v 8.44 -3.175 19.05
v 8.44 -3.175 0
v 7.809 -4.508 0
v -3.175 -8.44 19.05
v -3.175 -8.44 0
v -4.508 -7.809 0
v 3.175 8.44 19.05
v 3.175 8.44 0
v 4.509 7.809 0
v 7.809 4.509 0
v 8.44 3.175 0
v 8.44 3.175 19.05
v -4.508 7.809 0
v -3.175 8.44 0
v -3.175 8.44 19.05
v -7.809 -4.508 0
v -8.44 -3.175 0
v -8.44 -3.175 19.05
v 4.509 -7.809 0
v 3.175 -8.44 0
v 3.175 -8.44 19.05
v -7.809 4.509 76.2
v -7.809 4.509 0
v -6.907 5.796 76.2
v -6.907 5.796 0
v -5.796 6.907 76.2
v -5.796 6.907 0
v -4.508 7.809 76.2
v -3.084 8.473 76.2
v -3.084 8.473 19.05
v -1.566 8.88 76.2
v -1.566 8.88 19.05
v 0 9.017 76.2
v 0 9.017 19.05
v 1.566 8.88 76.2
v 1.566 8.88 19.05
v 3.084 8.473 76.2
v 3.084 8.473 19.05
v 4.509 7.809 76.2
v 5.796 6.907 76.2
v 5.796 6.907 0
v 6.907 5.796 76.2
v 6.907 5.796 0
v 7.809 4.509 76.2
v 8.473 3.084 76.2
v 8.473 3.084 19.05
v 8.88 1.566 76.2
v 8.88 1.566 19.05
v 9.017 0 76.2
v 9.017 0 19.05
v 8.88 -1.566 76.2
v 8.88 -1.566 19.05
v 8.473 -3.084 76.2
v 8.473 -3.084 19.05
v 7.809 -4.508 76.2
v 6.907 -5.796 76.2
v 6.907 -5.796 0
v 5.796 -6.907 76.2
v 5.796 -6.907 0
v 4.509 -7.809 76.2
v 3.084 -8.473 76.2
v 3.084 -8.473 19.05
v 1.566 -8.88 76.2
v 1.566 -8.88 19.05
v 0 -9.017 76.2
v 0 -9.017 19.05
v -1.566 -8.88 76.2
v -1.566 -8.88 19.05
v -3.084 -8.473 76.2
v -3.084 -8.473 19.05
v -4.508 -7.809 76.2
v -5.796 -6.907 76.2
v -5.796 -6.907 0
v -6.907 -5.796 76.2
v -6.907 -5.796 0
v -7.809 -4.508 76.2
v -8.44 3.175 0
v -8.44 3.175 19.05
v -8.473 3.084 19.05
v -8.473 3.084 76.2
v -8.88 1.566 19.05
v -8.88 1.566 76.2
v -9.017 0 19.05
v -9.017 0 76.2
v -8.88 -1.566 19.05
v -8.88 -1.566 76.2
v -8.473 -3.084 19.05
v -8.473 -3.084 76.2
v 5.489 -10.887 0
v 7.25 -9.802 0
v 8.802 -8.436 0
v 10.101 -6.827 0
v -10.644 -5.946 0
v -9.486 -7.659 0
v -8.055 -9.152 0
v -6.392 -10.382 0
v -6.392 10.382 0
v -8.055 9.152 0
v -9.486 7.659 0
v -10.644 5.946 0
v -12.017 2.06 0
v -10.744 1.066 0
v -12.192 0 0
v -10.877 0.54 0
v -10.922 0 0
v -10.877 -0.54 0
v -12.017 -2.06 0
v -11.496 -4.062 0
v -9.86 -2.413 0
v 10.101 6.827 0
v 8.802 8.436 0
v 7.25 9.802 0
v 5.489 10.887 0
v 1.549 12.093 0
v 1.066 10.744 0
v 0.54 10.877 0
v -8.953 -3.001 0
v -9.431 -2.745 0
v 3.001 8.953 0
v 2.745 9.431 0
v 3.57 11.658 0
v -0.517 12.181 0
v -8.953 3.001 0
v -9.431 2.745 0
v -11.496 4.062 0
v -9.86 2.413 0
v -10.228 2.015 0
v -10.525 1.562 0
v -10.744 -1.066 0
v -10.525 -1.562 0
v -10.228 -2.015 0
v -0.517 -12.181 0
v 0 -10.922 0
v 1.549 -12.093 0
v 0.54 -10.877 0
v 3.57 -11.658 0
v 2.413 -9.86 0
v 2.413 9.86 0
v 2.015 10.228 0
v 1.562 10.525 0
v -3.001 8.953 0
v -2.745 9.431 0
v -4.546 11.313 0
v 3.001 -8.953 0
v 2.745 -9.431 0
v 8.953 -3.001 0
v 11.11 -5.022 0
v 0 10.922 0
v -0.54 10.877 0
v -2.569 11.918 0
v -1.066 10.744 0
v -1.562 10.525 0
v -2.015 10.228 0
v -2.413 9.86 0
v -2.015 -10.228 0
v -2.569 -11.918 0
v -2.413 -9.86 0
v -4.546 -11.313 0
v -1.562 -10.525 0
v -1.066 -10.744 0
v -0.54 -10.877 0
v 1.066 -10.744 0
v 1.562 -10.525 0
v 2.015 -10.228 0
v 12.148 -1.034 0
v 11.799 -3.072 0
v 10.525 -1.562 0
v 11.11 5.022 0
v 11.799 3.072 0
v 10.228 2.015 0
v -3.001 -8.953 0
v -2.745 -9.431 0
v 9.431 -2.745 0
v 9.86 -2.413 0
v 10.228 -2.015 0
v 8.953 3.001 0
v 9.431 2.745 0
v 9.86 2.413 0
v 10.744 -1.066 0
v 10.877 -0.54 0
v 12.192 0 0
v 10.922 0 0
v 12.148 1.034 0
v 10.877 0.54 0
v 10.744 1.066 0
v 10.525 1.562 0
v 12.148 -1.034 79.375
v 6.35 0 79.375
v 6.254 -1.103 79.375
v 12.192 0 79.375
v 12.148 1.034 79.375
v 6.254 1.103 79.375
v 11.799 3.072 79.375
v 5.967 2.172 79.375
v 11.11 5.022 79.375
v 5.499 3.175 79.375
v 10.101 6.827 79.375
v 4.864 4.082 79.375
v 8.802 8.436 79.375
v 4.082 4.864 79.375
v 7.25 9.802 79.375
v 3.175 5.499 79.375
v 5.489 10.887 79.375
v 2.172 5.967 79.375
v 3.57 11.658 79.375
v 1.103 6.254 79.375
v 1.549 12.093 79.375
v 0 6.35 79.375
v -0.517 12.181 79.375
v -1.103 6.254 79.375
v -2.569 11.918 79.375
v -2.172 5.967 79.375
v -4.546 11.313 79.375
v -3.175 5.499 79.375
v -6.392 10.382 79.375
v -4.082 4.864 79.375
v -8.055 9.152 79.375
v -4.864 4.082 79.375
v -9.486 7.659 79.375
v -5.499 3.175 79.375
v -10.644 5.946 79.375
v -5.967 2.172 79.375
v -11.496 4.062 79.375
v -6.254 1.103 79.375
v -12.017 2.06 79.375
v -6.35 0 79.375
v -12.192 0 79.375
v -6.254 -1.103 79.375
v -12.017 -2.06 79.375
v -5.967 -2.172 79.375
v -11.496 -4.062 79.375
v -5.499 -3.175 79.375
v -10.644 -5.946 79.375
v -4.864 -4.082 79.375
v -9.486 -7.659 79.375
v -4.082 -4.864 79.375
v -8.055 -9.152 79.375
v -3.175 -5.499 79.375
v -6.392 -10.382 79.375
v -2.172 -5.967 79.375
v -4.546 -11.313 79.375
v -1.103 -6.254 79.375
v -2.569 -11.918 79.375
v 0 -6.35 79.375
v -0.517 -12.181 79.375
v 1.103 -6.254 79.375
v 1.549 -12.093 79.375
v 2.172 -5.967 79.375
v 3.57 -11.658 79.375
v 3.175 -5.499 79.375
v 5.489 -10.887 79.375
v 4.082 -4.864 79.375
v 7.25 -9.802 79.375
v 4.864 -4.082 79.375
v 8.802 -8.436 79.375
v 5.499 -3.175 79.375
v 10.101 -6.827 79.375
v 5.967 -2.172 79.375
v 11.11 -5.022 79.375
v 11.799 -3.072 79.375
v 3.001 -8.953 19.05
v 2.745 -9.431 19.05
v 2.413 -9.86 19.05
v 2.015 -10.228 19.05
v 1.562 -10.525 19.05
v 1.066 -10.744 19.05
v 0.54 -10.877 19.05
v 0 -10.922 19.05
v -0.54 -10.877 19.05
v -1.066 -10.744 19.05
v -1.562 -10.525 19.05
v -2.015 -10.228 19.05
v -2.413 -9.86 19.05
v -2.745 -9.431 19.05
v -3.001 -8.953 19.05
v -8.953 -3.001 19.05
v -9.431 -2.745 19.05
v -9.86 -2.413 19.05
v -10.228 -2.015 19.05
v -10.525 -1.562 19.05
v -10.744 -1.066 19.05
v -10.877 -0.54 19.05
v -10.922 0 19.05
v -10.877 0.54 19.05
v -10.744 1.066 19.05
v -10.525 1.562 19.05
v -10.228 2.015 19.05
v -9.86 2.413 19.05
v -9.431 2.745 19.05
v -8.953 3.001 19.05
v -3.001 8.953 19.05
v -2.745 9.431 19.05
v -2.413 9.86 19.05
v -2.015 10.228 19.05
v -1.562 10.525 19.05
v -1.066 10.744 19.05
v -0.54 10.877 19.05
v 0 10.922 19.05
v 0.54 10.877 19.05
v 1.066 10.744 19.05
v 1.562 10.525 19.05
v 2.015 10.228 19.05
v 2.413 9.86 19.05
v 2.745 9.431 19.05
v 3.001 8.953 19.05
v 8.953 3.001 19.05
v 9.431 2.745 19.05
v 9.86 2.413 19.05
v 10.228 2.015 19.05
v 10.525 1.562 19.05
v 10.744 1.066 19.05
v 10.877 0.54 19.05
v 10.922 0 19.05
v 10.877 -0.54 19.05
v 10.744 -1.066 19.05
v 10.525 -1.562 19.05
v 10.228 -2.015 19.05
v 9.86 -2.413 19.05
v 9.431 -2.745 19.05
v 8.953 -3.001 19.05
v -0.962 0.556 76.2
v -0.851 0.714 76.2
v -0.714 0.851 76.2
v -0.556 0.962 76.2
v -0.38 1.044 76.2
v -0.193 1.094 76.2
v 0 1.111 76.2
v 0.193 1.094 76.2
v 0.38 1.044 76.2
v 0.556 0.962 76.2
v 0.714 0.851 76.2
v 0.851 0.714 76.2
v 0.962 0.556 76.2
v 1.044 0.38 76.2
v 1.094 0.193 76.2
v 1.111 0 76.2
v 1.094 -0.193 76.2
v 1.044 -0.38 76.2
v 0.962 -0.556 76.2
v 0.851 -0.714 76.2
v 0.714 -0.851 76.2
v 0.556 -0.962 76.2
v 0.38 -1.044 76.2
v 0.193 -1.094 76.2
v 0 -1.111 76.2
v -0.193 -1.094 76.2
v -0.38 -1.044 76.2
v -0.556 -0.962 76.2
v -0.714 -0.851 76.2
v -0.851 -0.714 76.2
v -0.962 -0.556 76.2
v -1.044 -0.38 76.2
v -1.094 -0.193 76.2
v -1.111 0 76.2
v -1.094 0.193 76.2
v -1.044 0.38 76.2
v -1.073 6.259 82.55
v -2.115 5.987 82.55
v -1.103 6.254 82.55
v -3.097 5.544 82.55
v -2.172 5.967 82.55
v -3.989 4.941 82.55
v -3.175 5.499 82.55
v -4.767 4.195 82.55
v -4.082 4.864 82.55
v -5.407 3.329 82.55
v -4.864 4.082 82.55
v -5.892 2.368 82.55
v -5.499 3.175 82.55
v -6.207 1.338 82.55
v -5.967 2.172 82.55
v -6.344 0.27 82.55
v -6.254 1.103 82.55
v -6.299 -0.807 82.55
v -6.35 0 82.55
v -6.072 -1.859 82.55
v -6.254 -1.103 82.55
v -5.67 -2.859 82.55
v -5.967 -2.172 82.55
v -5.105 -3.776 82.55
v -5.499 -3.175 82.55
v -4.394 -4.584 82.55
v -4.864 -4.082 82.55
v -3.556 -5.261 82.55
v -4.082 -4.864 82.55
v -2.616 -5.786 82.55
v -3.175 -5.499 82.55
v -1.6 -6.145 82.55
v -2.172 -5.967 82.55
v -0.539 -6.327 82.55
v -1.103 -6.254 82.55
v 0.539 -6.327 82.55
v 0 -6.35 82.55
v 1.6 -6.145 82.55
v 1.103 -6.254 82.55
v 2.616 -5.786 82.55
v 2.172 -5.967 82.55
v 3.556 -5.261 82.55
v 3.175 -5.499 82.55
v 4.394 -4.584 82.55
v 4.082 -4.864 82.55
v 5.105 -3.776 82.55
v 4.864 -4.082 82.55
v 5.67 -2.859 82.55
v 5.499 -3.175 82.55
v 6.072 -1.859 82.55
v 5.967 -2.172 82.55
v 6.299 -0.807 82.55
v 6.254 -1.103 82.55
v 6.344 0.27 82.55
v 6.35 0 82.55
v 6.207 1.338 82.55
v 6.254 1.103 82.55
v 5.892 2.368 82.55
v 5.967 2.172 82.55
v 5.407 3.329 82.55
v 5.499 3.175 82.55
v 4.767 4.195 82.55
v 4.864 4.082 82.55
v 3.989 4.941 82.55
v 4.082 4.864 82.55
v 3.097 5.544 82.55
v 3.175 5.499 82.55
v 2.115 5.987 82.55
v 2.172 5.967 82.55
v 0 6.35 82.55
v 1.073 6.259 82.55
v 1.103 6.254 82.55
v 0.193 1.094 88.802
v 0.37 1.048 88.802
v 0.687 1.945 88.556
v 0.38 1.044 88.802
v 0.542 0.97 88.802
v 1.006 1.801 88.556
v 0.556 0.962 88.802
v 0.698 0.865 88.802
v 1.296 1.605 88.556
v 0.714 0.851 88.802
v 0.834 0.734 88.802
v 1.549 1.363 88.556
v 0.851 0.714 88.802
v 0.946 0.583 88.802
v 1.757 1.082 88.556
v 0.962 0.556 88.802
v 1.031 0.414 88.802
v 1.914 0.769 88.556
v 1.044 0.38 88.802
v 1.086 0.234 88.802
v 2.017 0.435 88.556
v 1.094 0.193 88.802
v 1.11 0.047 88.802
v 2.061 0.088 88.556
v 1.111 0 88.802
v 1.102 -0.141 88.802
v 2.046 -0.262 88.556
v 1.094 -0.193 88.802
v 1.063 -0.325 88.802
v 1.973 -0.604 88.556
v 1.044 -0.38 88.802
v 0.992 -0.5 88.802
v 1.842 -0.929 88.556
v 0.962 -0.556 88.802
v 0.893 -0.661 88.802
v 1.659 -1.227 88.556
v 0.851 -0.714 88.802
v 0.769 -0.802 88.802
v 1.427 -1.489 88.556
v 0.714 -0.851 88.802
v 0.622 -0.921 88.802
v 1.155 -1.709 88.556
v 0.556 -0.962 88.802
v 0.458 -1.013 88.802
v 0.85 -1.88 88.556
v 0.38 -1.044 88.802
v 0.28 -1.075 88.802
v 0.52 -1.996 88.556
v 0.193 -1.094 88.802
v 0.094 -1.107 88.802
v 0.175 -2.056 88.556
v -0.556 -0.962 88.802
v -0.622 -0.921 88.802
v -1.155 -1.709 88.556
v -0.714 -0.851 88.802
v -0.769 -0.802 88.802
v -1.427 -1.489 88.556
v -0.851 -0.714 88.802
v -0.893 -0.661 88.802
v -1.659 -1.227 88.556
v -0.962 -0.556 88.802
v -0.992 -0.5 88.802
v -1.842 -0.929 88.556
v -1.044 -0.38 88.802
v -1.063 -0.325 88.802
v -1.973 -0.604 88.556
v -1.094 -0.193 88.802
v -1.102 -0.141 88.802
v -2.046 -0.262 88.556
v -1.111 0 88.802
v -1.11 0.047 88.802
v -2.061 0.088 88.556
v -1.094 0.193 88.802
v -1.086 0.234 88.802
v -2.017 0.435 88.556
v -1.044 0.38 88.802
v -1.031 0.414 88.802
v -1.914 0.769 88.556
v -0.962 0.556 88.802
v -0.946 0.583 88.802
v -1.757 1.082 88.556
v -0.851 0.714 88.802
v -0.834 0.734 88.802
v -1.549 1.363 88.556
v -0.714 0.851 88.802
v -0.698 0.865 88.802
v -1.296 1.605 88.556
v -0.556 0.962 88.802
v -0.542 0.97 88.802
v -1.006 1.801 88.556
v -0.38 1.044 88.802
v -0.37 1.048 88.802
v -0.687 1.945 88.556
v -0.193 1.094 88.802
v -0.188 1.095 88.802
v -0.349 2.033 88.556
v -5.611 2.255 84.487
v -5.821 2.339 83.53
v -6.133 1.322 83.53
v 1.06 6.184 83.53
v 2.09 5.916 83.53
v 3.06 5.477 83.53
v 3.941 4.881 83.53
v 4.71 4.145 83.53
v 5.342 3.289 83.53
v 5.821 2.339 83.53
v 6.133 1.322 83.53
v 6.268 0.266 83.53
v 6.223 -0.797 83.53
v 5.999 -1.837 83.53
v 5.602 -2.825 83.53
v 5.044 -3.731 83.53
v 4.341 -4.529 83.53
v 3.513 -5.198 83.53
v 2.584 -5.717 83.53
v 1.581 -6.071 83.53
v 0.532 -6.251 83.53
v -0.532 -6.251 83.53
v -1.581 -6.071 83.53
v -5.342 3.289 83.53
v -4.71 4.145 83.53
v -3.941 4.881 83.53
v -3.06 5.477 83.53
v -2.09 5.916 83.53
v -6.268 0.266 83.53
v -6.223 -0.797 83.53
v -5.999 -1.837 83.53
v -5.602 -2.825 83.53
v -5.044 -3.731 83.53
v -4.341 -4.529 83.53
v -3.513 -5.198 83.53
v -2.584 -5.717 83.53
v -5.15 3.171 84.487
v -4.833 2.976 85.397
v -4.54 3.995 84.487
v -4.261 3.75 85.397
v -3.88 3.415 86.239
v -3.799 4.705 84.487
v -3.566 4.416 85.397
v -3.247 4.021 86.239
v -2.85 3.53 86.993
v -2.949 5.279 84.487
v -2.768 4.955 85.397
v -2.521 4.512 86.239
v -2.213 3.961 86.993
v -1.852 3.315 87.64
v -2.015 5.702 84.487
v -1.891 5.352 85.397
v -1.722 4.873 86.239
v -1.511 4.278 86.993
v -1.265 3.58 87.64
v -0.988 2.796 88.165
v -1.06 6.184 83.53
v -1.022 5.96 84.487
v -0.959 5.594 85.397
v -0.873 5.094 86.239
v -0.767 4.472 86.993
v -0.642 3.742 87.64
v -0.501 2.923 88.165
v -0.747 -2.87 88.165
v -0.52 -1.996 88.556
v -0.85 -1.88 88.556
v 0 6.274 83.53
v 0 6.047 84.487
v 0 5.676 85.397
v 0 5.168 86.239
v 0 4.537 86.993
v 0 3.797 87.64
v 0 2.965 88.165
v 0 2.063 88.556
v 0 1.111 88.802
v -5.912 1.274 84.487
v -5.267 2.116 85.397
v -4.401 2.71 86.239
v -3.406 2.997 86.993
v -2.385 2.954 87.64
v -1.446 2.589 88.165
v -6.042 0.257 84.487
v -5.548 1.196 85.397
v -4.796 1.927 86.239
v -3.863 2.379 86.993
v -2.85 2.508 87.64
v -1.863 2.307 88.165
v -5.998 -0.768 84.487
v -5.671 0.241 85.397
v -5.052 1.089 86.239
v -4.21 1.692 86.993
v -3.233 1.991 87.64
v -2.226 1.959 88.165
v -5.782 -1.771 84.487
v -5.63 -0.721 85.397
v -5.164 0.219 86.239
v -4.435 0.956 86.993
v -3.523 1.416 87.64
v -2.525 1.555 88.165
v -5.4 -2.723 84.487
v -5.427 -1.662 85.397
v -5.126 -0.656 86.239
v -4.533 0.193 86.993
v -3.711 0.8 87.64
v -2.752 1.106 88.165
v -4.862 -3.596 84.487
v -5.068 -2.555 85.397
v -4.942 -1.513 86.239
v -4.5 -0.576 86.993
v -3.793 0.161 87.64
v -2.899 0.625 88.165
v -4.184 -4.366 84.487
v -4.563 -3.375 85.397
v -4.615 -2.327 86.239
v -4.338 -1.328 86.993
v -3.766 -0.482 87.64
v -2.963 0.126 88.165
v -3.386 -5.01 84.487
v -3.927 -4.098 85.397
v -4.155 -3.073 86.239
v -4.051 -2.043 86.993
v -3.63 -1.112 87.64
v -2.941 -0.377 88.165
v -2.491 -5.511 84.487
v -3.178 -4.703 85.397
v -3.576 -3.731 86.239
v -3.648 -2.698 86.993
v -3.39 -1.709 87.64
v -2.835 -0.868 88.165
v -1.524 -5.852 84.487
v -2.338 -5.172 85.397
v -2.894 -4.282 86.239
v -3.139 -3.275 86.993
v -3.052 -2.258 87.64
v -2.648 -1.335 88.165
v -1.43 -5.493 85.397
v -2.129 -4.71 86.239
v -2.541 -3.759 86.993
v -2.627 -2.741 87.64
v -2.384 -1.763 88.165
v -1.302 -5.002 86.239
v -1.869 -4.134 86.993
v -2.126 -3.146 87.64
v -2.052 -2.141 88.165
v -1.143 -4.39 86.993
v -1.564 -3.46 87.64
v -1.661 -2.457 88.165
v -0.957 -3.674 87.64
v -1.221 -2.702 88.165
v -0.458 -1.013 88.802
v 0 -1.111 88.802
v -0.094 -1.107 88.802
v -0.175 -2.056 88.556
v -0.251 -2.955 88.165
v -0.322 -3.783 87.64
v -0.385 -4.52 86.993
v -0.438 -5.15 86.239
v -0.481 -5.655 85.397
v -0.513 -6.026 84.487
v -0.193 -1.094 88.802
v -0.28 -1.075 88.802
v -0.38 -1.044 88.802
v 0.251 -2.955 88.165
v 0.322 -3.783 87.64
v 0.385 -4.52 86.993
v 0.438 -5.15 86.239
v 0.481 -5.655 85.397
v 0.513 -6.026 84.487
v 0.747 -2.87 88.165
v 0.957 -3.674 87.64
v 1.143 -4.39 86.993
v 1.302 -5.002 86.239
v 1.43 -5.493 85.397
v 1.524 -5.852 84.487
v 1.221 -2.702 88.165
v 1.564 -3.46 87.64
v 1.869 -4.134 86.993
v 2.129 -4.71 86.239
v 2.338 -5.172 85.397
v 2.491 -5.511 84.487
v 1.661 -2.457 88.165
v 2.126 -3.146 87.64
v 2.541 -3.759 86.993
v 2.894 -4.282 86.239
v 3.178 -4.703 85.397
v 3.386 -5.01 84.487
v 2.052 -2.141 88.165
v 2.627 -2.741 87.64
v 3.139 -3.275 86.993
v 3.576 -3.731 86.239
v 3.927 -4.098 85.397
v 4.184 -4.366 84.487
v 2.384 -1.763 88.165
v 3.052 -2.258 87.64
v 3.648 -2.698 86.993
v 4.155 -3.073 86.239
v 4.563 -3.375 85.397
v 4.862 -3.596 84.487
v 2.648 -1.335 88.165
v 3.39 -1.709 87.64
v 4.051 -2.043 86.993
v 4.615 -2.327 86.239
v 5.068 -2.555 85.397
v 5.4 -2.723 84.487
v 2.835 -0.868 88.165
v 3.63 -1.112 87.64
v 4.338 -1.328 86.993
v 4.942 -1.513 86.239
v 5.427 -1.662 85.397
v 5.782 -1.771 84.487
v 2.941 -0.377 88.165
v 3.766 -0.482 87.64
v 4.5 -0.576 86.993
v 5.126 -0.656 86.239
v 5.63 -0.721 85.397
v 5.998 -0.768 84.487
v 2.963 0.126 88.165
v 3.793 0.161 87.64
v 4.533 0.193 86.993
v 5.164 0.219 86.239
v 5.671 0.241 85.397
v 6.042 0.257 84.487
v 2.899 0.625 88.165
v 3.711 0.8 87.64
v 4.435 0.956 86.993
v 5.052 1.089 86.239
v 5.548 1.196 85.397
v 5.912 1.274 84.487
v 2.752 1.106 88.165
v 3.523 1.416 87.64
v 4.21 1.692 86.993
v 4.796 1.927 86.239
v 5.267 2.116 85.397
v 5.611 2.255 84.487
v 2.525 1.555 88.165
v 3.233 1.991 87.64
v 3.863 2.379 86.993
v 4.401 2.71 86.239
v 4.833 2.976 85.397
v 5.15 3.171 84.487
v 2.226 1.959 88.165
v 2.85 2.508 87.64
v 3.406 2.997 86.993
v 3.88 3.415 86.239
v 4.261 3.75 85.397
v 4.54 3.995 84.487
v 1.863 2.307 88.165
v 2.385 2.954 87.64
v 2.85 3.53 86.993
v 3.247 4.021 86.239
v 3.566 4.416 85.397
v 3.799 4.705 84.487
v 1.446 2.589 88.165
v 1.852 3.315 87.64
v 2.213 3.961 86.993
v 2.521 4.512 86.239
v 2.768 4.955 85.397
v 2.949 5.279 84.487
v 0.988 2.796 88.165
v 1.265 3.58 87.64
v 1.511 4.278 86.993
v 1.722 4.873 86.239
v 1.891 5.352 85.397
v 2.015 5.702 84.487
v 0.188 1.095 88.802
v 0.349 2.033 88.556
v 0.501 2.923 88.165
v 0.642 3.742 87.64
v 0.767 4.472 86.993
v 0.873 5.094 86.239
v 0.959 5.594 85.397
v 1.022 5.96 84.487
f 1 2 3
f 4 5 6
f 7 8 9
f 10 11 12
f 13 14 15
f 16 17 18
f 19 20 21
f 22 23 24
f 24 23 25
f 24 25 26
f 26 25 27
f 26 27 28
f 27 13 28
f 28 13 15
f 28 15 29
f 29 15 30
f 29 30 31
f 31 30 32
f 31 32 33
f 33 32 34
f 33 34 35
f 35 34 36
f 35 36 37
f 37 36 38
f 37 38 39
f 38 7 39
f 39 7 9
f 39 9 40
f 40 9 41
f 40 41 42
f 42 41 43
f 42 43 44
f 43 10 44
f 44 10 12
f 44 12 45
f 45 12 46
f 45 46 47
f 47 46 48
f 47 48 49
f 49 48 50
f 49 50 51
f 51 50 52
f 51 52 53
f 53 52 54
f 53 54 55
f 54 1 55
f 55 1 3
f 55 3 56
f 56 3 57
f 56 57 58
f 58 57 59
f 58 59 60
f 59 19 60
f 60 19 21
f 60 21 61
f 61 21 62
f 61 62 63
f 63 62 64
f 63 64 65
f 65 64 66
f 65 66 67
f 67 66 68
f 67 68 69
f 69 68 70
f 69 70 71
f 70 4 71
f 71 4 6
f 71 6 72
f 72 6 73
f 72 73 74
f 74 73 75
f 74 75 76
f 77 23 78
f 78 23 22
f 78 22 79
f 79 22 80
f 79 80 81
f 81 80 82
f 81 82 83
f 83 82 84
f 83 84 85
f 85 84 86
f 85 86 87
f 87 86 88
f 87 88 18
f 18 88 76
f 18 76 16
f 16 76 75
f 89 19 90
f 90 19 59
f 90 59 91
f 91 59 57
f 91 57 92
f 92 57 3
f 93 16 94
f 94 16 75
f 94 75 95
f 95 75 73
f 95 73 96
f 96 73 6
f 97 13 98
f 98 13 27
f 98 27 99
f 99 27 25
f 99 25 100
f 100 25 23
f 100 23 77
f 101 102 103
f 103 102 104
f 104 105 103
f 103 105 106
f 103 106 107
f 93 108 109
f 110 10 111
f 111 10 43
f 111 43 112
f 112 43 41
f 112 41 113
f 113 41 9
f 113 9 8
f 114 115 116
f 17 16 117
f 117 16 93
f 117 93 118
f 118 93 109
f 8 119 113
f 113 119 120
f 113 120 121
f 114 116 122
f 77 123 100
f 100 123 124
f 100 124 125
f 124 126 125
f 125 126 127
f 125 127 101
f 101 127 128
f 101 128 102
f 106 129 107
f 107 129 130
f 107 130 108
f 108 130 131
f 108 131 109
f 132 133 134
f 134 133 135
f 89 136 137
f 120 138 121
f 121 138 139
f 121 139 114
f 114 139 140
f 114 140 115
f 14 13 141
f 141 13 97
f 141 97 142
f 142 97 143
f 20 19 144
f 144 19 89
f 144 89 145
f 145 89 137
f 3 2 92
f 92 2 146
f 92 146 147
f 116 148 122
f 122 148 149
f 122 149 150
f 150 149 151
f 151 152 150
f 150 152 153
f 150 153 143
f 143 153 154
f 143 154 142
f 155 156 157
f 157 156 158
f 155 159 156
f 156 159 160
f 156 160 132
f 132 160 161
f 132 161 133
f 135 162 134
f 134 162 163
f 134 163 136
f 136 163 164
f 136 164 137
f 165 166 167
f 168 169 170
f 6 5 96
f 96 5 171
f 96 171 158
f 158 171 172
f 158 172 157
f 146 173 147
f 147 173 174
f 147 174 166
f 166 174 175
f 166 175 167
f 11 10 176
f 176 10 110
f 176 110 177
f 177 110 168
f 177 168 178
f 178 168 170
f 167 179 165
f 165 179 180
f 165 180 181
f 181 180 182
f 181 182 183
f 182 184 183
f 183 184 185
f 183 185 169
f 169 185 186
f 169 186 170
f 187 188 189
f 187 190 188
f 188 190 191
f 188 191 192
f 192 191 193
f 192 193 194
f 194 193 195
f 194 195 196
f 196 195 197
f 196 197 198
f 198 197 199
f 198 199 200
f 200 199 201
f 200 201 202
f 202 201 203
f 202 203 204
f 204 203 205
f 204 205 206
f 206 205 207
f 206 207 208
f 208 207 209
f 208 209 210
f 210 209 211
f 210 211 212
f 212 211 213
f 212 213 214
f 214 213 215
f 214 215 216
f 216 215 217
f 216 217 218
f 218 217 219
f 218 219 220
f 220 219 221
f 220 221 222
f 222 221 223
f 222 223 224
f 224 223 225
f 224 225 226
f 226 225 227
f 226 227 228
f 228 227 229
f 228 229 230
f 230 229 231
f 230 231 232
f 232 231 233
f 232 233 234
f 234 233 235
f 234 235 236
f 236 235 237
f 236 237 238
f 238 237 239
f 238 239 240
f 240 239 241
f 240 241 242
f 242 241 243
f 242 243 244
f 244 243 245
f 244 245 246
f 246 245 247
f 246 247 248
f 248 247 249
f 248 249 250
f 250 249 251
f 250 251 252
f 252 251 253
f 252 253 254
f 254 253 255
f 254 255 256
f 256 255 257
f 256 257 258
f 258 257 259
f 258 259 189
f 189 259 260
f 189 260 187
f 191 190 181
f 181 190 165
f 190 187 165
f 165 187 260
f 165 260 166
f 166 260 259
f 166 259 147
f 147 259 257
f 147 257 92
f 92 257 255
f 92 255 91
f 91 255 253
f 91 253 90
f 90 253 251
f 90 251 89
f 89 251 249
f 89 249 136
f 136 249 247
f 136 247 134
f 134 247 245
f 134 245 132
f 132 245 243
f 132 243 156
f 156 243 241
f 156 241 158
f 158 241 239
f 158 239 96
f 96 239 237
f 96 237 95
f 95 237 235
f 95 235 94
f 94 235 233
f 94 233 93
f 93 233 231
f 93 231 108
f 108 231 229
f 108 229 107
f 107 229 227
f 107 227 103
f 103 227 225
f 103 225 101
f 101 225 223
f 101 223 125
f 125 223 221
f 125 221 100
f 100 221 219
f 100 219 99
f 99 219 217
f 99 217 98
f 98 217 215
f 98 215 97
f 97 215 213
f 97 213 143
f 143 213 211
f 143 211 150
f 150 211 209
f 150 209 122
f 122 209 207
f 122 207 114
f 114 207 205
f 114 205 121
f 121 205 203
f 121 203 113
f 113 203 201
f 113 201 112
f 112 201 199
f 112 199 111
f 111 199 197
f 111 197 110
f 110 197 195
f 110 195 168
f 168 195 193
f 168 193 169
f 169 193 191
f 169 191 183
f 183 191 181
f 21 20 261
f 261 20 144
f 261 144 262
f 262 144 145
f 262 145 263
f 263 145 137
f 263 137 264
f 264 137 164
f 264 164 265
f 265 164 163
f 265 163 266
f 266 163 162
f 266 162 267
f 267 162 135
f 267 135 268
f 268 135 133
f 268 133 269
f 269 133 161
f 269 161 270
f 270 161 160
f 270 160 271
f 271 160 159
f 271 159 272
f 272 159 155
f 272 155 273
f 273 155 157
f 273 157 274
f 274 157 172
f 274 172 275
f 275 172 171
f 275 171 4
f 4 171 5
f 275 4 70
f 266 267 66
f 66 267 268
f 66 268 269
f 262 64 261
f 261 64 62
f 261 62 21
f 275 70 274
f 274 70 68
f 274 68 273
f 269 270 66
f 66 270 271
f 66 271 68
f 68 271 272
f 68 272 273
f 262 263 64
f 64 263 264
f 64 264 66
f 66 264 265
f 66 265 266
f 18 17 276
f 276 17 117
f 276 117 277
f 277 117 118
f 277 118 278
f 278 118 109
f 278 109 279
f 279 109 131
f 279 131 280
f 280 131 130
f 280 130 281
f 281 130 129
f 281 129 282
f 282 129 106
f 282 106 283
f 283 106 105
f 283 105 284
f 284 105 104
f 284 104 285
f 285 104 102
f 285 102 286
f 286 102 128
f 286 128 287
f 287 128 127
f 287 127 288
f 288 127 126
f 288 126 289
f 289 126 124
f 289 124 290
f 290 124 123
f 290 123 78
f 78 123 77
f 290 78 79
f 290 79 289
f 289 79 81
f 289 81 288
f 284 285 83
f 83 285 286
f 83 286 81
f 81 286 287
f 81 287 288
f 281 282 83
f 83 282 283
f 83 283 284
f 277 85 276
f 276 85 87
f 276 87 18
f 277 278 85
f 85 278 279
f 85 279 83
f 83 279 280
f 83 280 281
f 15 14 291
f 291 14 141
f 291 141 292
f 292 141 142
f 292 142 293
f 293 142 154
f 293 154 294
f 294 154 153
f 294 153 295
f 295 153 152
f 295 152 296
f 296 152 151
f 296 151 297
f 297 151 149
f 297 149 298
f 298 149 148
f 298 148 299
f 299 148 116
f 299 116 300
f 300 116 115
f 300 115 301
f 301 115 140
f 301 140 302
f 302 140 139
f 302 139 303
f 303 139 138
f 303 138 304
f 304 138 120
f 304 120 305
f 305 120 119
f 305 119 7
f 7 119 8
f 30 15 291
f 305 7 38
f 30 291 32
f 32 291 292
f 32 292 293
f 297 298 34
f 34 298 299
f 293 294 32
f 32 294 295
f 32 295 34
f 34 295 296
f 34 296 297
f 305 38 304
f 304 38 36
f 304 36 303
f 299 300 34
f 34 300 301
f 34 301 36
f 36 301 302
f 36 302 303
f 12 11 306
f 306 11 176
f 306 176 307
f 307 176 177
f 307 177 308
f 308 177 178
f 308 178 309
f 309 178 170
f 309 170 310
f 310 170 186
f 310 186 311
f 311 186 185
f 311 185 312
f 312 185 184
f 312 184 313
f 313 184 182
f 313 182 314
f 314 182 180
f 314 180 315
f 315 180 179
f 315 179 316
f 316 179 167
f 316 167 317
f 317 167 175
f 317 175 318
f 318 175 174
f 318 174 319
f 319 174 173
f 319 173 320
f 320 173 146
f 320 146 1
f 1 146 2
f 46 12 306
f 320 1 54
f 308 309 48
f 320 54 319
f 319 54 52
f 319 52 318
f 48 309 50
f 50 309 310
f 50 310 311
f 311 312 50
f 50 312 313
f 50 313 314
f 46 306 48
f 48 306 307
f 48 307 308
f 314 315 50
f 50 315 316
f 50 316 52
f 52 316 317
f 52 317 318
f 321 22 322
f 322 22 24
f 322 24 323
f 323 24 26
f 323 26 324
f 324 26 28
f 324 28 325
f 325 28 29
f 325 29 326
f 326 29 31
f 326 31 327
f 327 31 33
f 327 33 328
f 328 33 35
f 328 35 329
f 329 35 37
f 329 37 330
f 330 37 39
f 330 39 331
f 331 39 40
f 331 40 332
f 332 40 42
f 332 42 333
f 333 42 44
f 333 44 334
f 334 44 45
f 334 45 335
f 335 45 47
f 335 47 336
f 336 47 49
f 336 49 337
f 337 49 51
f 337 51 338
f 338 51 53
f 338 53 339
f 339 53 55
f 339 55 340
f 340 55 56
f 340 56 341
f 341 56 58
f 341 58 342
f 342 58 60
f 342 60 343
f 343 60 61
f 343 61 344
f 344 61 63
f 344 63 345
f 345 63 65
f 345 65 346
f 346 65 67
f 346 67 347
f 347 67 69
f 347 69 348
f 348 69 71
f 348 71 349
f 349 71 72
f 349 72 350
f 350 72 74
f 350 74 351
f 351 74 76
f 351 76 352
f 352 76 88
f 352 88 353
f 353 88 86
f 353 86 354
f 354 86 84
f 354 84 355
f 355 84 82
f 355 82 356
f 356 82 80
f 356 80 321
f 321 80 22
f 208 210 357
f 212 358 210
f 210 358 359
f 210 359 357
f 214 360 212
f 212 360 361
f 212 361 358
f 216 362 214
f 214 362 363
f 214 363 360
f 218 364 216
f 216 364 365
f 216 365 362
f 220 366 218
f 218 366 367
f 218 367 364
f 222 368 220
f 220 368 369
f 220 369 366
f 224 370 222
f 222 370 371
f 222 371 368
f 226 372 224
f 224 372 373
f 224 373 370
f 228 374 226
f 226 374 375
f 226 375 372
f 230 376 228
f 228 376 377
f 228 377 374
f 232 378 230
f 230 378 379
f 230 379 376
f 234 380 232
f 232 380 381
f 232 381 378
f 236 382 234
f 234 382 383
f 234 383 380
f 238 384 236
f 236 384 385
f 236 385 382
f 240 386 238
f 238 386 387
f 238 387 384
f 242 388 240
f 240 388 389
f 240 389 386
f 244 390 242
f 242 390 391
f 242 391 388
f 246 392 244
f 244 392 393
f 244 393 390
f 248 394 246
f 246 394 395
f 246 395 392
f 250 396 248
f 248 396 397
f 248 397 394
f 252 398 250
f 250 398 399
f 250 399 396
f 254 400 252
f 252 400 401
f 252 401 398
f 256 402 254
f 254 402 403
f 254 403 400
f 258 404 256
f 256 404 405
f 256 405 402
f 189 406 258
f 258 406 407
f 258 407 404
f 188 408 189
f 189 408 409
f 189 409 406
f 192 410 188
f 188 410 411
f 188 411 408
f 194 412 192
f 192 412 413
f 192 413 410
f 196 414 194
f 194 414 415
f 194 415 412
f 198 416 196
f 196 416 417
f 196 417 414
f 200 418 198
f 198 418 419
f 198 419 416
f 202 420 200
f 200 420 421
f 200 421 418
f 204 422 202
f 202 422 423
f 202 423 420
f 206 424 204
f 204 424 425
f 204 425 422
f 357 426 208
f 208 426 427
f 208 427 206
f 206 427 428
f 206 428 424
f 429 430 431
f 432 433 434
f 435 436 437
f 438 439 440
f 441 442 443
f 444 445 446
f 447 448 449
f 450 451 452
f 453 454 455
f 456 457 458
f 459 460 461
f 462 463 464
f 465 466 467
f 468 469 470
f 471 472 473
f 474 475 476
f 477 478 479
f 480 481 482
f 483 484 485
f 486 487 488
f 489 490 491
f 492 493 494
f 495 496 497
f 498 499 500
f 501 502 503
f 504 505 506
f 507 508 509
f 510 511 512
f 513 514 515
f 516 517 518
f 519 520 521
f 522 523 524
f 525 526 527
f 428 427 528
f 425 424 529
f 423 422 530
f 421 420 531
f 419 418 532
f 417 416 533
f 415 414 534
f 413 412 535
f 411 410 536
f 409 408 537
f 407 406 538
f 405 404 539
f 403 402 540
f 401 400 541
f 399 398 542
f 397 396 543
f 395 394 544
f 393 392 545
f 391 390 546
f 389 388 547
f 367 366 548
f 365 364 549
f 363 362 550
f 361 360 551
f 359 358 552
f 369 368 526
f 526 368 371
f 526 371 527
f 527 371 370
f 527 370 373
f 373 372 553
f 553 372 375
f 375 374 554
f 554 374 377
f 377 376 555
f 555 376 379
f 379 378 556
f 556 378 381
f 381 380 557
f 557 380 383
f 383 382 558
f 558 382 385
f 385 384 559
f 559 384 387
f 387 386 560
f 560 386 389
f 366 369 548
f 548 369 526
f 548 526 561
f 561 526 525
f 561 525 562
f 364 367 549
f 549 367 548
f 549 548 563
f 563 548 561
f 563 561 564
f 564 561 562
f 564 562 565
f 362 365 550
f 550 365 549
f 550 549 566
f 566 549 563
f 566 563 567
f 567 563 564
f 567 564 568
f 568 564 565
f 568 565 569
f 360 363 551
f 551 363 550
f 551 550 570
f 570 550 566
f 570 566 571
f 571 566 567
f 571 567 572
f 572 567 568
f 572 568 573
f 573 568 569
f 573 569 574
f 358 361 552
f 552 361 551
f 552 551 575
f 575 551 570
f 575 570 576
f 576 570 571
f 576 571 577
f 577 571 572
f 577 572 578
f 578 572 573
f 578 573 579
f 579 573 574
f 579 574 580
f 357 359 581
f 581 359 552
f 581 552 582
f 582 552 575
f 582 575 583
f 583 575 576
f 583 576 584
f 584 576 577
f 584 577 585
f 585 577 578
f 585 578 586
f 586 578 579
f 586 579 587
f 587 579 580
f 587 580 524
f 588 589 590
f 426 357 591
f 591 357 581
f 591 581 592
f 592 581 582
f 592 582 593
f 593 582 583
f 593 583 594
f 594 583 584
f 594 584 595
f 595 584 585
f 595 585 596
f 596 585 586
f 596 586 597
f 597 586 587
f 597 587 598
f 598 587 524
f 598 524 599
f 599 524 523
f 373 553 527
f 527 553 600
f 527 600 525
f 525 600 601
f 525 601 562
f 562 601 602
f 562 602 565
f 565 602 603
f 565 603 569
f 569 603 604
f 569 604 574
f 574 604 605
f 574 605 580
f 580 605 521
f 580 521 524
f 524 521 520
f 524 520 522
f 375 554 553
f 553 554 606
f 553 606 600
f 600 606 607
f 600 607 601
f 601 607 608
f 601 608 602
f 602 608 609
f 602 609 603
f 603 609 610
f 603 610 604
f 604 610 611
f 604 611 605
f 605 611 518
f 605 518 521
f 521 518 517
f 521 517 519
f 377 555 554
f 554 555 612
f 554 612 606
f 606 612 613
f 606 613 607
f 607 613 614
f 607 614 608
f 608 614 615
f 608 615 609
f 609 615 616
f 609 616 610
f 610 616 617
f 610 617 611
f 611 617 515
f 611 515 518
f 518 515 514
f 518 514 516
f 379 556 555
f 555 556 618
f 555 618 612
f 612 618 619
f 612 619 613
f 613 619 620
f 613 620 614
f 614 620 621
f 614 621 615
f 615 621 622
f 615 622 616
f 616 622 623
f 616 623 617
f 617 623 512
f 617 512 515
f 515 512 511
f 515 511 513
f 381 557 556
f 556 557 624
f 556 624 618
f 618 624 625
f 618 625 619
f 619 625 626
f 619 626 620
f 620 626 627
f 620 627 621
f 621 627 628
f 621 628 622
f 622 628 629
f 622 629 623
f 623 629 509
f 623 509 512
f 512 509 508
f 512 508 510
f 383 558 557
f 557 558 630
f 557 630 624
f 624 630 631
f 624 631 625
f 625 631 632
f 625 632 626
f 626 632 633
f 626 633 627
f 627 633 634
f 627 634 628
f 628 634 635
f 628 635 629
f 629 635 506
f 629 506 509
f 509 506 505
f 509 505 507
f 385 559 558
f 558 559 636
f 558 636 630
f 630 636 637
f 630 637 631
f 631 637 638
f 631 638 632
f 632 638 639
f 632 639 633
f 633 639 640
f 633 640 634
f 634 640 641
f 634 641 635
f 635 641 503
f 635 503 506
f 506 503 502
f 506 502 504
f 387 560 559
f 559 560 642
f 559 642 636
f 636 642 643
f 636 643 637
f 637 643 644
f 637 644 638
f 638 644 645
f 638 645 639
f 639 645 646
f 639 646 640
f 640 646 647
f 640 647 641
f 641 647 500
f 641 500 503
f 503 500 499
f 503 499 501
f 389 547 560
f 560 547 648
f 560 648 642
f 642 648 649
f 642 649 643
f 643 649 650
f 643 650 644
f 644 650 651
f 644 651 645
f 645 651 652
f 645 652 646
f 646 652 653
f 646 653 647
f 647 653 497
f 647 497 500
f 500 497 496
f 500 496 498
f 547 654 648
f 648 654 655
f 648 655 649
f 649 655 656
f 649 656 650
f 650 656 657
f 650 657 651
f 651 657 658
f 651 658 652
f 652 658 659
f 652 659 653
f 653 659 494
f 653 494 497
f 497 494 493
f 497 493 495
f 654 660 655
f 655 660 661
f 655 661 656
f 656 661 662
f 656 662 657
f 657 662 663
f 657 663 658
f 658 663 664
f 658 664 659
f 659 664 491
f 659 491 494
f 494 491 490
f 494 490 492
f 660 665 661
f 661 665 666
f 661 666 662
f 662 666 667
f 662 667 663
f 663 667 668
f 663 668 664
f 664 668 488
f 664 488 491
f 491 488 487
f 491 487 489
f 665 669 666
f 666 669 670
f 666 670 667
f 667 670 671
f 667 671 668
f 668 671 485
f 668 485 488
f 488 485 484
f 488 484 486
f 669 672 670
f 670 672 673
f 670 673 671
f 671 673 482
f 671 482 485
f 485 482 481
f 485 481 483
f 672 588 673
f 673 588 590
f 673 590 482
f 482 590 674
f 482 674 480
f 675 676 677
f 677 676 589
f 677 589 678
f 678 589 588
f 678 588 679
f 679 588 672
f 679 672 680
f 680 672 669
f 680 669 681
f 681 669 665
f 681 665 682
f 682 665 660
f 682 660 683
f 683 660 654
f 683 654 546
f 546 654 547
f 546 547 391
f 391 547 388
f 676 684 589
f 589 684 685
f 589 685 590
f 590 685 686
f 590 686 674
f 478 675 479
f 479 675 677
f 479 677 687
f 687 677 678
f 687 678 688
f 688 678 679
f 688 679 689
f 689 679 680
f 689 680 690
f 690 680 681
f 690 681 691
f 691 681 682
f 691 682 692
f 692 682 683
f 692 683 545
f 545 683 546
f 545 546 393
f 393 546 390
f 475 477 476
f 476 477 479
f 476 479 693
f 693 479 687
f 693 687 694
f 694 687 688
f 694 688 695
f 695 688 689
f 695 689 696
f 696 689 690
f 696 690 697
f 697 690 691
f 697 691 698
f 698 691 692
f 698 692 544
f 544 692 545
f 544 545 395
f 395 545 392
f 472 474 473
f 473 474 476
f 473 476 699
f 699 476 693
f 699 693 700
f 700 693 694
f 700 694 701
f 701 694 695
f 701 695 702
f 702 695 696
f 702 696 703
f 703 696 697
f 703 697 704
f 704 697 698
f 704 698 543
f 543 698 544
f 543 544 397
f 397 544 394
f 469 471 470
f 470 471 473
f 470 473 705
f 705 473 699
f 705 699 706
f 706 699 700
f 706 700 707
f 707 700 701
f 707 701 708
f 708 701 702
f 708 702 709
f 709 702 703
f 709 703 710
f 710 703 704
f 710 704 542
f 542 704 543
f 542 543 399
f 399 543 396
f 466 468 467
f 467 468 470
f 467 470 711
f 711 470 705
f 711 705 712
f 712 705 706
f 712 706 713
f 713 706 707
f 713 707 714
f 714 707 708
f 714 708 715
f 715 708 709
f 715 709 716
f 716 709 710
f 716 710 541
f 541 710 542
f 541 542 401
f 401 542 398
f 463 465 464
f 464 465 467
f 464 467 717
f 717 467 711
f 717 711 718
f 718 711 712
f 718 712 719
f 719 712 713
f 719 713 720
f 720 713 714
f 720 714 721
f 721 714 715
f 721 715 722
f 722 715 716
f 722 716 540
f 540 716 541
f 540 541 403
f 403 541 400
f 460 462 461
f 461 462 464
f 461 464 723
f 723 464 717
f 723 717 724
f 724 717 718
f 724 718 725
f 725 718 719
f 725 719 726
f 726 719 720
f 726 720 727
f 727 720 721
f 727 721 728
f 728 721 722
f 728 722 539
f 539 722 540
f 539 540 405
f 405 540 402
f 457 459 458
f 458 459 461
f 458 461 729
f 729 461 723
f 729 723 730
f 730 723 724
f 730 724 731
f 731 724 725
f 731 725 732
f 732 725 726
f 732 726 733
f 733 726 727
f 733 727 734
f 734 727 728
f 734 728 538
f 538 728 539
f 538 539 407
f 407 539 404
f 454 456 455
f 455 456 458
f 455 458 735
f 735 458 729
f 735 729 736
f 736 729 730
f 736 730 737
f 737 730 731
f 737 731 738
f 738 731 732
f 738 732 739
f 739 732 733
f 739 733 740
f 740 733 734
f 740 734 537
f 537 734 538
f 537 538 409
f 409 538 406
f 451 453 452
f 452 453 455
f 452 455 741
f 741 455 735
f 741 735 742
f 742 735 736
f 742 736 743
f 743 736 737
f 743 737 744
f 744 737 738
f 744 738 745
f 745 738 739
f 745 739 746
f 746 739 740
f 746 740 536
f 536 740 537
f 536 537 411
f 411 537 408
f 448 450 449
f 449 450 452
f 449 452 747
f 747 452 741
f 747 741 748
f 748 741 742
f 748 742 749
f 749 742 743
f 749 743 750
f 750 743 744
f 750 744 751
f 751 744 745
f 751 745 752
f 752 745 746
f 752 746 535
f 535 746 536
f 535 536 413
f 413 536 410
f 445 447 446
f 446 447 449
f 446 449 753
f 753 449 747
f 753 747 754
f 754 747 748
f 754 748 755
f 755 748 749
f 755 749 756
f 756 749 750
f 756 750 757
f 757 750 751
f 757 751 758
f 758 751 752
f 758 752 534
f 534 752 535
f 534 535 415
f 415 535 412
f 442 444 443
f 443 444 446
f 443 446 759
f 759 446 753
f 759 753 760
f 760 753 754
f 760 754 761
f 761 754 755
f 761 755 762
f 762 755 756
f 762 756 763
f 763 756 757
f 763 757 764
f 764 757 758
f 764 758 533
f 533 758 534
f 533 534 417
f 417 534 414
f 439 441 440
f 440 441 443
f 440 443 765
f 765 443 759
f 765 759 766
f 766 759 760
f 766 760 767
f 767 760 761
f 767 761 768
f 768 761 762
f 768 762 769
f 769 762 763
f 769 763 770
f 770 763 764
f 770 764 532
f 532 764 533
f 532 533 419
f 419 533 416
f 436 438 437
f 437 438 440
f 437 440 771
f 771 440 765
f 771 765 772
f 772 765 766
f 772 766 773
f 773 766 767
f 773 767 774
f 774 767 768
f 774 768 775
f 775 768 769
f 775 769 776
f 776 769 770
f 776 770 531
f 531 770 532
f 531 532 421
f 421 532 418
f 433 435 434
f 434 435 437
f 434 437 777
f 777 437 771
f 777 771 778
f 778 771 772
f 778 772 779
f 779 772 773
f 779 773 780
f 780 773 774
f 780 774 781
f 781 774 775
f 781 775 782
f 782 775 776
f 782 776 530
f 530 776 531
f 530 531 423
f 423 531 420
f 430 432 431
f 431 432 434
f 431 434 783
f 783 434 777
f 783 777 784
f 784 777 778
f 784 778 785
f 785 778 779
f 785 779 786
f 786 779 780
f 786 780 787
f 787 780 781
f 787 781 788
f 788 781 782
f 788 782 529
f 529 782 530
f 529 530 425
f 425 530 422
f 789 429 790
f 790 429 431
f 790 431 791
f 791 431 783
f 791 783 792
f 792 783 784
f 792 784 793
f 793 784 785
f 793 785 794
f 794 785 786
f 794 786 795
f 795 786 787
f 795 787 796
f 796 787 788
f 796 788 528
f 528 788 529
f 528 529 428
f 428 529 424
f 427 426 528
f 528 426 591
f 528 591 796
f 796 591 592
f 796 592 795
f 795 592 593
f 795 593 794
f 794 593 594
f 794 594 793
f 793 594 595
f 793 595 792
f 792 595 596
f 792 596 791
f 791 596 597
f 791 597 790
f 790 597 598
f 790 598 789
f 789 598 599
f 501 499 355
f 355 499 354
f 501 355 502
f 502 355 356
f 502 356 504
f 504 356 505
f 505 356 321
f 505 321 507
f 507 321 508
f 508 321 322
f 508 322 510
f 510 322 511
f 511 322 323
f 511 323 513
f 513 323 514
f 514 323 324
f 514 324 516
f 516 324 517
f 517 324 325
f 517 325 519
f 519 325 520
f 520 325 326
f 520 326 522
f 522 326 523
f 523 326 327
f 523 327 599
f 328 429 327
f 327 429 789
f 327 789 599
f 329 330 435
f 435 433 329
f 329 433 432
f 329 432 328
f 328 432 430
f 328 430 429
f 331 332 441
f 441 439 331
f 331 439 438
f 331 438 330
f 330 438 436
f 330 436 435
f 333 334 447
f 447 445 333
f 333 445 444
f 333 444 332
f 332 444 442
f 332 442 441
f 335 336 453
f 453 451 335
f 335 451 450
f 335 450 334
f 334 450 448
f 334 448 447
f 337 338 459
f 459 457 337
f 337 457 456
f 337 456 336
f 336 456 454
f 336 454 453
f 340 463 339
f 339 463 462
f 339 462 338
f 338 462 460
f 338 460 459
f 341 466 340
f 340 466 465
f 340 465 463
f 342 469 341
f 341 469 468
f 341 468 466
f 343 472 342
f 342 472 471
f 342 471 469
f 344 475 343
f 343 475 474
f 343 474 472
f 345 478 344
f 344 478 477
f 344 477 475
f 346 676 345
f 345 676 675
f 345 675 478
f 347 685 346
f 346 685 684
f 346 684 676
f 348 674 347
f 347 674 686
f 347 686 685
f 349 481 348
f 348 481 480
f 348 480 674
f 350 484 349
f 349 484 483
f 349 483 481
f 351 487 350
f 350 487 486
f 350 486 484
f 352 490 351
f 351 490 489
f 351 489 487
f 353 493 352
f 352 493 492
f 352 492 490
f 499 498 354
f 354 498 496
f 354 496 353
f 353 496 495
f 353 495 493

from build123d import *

# Parameters (mm, degrees)
SKETCH1_R           = 12.192
SKETCH1_R_2         = 9.017
CORE_EXTRUDE_DEPTH  = 79.375
GROOVE_CUT_DEPTH    = 19.05
BUMPY_START         = -3.175
SKETCH3_R           = 9.017
BUMPY_EXTRUDE_DEPTH = 3.175
SKETCH7_R           = 1.11125
CUT_EXTRUDE3_DEPTH  = 79.126370247


with BuildPart() as part:
    # Sketch1 → Core Extrude (new body)
    with BuildSketch(Plane.XY):
        with Locations(Location((0, 0, 0), (0, 0, 180))):
            Circle(SKETCH1_R)
        with Locations(Location((0, 0, 0), (0, 0, 180))):
            Circle(SKETCH1_R_2, mode=Mode.SUBTRACT)
    extrude(amount=CORE_EXTRUDE_DEPTH)

    # Sketch2 → Groove Cut (cut)
    with BuildSketch(Plane(origin=(0, 0, 0), x_dir=(-1, 0, 0), z_dir=(0, 0, -1))):
        with BuildLine():
            ThreePointArc((-8.439529845, -3.175), (-9.017, 0), (-8.439529845, 3.175))
            ThreePointArc((-8.439529845, 3.175), (-10.922, 0), (-8.439529845, -3.175))
        make_face()
        with BuildLine():
            ThreePointArc((-3.175, 8.439529845), (0, 9.017), (3.175, 8.439529845))
            ThreePointArc((3.175, 8.439529845), (0, 10.922), (-3.175, 8.439529845))
        make_face()
        with BuildLine():
            ThreePointArc((8.439529845, -3.175), (10.922, 0), (8.439529845, 3.175))
            ThreePointArc((8.439529845, 3.175), (8.871457874, 1.613543986), (9.017, 0))
            ThreePointArc((9.017, 0), (8.871457874, -1.613543986), (8.439529845, -3.175))
        make_face()
        with BuildLine():
            ThreePointArc((-3.175, -8.439529845), (0, -10.922), (3.175, -8.439529845))
            ThreePointArc((3.175, -8.439529845), (0, -9.017), (-3.175, -8.439529845))
        make_face()
    extrude(amount=-GROOVE_CUT_DEPTH, mode=Mode.SUBTRACT)

    # Sketch3 → Bumpy Extrude (add)
    with BuildSketch(Plane.XY.offset(79.375).offset(BUMPY_START)):
        with Locations(Location((0, 0, 0), (0, 0, 159.383409617))):
            Circle(SKETCH3_R)
    extrude(amount=BUMPY_EXTRUDE_DEPTH)

    # Sketch5 → Revolve1 (revolve)
    with BuildSketch(Plane(origin=(0, 0, 0), x_dir=(0, 0, -1), z_dir=(1, 0, 0))):
        with BuildLine():
            Line((-88.9, 0), (-79.375, 0))
            Line((-79.375, 0), (-79.375, 6.35))
            Line((-79.375, 6.35), (-82.55, 6.35))
            ThreePointArc((-82.55, 6.35), (-87.040128061, 4.490128061), (-88.9, 0))
        make_face()
    revolve(axis=Axis((0, 0, 79.375), (0, 0, 1)))

    # Sketch7 → Cut-Extrude3 (cut, through all)
    with BuildSketch(Plane(origin=(0, 0, 76.2), x_dir=(-1, 0, 0), z_dir=(0, 0, -1))):
        Circle(SKETCH7_R)
    extrude(amount=-CUT_EXTRUDE3_DEPTH, mode=Mode.SUBTRACT)


solid = part.part
